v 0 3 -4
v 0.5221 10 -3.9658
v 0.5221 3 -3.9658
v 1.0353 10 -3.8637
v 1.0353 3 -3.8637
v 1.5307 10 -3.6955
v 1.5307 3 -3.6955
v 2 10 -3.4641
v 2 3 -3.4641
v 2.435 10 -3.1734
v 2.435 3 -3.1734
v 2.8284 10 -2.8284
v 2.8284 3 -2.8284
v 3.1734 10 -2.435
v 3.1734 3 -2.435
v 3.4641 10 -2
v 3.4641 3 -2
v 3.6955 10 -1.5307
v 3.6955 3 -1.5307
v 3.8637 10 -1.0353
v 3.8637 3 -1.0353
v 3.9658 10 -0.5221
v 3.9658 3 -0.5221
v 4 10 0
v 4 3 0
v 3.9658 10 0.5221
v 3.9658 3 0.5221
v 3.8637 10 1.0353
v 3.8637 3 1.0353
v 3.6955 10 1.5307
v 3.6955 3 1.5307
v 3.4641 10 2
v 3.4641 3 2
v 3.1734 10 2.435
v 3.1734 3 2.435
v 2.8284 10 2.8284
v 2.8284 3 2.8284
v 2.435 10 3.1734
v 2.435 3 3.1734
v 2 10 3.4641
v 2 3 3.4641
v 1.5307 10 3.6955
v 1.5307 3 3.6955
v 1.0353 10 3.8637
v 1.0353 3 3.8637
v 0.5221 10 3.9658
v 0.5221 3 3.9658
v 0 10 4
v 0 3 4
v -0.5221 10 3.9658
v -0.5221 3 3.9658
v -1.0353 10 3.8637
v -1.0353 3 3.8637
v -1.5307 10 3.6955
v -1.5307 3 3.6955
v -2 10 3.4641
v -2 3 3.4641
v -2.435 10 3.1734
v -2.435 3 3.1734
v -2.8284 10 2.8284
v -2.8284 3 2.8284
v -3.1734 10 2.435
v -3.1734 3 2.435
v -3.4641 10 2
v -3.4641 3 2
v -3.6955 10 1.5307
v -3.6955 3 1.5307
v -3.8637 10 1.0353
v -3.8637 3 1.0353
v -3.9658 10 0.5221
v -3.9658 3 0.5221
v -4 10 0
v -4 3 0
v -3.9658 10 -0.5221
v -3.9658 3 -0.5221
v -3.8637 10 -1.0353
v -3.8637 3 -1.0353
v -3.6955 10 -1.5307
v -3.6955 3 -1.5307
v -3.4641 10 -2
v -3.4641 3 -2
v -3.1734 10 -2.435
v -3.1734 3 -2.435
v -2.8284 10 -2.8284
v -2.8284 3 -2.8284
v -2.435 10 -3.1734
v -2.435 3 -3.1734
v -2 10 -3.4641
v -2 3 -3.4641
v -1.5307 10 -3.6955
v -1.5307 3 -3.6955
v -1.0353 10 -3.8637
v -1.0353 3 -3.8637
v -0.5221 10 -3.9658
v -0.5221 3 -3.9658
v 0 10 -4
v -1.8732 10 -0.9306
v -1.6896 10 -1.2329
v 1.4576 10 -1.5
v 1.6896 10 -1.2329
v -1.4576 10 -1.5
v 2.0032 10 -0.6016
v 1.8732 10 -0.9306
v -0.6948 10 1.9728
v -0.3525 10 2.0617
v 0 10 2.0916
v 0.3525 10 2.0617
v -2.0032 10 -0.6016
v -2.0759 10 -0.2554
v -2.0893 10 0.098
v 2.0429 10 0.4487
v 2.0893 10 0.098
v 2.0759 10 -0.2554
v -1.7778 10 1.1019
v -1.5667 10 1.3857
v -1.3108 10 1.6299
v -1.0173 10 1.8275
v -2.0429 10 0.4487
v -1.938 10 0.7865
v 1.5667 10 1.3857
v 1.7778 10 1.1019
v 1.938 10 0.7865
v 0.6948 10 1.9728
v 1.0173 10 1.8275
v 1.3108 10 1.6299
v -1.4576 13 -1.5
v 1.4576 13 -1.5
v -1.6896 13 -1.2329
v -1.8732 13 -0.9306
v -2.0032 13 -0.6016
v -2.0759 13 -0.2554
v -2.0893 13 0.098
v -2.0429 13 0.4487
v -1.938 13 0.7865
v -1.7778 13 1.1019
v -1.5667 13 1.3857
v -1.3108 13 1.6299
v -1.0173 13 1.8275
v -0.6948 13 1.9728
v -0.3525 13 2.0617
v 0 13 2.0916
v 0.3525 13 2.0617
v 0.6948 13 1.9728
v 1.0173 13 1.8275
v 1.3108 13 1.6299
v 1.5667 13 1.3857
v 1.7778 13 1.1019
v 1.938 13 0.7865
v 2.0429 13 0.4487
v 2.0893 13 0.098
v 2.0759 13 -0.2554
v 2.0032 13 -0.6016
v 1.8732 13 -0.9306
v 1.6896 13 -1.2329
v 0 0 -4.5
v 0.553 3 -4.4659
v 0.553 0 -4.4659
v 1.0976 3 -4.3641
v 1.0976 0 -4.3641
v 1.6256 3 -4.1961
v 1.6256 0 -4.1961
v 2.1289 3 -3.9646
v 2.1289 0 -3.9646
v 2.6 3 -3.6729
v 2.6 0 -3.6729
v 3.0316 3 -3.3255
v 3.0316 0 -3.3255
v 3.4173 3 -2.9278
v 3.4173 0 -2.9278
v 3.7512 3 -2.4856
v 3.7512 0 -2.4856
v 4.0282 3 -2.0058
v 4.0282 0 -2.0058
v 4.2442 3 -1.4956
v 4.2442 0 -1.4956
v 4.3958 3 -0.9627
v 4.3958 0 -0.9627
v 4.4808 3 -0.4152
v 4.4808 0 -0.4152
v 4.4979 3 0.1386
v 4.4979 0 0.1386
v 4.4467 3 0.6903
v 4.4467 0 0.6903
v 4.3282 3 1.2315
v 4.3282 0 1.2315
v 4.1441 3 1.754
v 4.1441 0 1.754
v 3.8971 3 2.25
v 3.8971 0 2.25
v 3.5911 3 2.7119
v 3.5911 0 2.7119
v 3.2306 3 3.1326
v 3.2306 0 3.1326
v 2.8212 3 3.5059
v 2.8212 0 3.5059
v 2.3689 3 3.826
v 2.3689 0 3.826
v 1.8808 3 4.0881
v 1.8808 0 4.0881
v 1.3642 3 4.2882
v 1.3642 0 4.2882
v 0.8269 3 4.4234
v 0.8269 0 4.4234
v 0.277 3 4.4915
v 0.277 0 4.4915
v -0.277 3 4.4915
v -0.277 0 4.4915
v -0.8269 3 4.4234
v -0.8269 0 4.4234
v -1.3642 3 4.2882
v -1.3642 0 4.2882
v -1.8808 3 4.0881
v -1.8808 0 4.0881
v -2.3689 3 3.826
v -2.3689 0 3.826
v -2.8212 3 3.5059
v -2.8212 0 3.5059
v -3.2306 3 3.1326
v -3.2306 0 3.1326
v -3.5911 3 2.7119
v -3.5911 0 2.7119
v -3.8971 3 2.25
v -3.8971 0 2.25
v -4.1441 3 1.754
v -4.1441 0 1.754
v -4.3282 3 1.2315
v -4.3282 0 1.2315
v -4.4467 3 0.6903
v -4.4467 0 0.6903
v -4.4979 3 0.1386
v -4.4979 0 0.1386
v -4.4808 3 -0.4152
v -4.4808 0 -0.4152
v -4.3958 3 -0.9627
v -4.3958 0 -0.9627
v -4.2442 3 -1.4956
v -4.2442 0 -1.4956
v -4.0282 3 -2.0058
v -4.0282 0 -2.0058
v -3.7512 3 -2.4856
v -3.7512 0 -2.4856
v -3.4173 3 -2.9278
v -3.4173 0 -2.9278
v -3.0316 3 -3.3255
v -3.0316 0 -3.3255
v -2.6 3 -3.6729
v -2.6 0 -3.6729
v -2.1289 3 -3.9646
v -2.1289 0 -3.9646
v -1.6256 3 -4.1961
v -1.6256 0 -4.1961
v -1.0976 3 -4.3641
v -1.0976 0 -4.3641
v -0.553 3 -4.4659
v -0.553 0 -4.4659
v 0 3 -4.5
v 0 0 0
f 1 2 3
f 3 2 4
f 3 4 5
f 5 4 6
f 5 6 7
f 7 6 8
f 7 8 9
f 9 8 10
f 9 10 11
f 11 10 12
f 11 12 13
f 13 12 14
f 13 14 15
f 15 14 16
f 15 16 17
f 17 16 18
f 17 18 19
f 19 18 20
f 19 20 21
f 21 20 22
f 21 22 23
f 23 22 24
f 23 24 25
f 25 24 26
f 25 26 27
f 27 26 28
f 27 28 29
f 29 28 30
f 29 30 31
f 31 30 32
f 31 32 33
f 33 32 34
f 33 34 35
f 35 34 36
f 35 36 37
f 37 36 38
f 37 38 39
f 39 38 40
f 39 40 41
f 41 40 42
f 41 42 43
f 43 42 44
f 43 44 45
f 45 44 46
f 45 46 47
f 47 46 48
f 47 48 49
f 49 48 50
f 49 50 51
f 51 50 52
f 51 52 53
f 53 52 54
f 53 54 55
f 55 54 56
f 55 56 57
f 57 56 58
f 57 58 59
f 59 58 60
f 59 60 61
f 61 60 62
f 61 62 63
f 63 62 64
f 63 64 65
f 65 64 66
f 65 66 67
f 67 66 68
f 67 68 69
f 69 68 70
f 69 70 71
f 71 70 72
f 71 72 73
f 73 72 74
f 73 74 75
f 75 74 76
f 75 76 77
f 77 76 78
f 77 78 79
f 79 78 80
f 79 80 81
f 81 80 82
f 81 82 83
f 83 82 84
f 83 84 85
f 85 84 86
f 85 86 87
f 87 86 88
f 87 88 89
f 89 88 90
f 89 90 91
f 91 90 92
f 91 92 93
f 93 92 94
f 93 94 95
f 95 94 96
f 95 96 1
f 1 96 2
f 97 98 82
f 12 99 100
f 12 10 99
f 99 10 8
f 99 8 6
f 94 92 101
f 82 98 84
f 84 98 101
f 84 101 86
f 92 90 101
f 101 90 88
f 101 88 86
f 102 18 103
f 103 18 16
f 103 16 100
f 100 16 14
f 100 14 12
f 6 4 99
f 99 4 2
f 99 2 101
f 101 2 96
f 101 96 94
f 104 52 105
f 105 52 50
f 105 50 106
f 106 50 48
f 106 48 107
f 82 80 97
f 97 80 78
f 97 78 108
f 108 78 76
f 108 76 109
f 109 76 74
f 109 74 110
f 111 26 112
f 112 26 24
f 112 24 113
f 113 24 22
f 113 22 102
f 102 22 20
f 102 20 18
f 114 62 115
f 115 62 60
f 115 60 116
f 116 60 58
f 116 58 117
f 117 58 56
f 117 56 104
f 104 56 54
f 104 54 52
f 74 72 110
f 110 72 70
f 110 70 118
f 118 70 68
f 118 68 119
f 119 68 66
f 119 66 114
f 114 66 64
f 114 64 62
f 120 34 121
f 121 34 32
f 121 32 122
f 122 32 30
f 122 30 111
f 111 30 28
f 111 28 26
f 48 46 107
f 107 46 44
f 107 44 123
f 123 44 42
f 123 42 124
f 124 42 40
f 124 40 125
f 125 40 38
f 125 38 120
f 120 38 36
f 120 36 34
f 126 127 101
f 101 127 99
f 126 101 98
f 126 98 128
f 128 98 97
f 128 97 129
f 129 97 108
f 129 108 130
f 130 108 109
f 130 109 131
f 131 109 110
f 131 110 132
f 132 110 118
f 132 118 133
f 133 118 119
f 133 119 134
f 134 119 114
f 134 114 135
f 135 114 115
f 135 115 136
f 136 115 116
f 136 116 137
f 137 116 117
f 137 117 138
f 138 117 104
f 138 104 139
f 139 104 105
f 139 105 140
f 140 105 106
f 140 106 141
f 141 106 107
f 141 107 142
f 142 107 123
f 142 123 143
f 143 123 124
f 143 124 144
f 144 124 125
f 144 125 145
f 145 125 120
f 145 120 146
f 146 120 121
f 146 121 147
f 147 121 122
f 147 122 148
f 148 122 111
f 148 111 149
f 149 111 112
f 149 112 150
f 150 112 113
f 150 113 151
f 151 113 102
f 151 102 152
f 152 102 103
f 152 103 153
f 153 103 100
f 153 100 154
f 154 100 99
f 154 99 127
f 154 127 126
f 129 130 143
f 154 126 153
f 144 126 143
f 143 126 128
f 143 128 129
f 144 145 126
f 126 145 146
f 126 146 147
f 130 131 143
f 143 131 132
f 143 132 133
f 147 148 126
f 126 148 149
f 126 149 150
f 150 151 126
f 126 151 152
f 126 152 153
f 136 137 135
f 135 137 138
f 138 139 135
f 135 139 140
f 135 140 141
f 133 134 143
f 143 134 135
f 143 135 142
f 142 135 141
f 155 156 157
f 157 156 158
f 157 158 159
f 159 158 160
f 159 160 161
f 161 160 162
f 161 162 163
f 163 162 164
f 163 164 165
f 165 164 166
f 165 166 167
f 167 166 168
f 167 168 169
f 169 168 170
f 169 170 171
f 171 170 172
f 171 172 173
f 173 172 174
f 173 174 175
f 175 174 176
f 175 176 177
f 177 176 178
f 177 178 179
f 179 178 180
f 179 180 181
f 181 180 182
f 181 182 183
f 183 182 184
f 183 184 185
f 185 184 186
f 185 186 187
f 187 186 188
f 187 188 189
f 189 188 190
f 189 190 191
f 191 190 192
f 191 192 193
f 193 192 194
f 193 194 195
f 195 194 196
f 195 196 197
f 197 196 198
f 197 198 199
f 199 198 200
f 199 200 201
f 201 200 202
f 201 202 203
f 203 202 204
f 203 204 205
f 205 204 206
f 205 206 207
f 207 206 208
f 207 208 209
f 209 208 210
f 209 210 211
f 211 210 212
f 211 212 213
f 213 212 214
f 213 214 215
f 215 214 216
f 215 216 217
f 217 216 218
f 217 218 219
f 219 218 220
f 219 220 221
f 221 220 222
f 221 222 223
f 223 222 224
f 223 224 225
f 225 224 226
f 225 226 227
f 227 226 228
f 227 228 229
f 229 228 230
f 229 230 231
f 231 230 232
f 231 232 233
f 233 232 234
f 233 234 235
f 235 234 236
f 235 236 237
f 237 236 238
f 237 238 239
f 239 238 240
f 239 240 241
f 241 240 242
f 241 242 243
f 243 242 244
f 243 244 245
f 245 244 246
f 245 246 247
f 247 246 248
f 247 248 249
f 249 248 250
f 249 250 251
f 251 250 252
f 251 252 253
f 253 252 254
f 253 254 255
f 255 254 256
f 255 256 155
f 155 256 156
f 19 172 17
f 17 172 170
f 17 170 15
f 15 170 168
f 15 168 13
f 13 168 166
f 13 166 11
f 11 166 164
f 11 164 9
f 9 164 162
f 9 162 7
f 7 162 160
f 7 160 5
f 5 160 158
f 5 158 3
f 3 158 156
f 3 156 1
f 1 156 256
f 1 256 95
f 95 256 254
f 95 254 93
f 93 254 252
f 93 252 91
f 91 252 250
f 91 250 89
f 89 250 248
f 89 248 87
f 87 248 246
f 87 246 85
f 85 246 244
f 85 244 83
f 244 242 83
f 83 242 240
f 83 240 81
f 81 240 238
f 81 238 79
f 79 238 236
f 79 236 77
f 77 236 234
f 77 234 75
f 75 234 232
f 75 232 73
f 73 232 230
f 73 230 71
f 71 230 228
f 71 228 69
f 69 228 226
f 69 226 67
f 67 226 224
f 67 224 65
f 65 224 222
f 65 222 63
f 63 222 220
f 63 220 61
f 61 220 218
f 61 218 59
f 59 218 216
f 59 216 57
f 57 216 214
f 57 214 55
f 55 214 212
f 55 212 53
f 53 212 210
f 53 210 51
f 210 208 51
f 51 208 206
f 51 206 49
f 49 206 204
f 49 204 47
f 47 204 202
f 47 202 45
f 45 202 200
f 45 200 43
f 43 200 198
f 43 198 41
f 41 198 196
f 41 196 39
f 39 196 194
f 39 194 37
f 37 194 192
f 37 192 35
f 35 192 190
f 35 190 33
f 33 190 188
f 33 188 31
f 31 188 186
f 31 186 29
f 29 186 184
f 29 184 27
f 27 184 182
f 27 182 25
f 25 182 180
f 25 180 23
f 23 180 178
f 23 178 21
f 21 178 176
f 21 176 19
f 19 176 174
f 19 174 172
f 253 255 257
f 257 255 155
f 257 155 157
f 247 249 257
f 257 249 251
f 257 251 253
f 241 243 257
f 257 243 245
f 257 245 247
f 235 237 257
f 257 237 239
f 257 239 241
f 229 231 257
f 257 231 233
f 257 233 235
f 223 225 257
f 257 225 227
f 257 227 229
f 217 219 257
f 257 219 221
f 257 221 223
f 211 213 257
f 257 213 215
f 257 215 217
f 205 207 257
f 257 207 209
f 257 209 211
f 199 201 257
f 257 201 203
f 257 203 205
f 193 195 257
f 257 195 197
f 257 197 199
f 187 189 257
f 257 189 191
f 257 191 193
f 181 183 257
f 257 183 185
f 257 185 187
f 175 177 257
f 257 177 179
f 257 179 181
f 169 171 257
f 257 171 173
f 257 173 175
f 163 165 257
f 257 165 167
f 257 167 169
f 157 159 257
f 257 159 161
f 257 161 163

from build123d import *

# Parameters (mm, degrees)
SKETCH1_R           = 4
BOSS_EXTRUDE1_DEPTH = 10
BOSS_EXTRUDE2_DEPTH = 3
SKETCH3_R           = 4.5
SKETCH3_R_2         = 4
BOSS_EXTRUDE3_DEPTH = 3


with BuildPart() as part:
    # Sketch1 → Boss-Extrude1 (new body)
    with BuildSketch(Plane(origin=(0, 0, 0), x_dir=(1, 0, 0), z_dir=(0, 1, 0))):
        with Locations(Location((0, 0, 0), (0, 0, 270))):
            Circle(SKETCH1_R)
    extrude(amount=BOSS_EXTRUDE1_DEPTH)

    # Sketch2 → Boss-Extrude2 (add)
    with BuildSketch(Plane(origin=(0, 10, 0), x_dir=(1, 0, 0), z_dir=(0, 1, 0))):
        with BuildLine():
            Line((1.457625029, 1.5), (-1.457625029, 1.5))
            ThreePointArc((-1.457625029, 1.5), (-0.814230917, -1.926576949), (2.091571353, 0))
            ThreePointArc((2.091571353, 0), (1.926576949, 0.814230917), (1.457625029, 1.5))
        make_face()
    extrude(amount=BOSS_EXTRUDE2_DEPTH)

    # Sketch3 → Boss-Extrude3 (add)
    with BuildSketch(Plane.XZ):
        with Locations(Location((0, 0, 0), (0, 0, 270))):
            Circle(SKETCH3_R)
        with Locations(Location((0, 0, 0), (0, 0, 270))):
            Circle(SKETCH3_R_2, mode=Mode.SUBTRACT)
    extrude(amount=-BOSS_EXTRUDE3_DEPTH)


solid = part.part
